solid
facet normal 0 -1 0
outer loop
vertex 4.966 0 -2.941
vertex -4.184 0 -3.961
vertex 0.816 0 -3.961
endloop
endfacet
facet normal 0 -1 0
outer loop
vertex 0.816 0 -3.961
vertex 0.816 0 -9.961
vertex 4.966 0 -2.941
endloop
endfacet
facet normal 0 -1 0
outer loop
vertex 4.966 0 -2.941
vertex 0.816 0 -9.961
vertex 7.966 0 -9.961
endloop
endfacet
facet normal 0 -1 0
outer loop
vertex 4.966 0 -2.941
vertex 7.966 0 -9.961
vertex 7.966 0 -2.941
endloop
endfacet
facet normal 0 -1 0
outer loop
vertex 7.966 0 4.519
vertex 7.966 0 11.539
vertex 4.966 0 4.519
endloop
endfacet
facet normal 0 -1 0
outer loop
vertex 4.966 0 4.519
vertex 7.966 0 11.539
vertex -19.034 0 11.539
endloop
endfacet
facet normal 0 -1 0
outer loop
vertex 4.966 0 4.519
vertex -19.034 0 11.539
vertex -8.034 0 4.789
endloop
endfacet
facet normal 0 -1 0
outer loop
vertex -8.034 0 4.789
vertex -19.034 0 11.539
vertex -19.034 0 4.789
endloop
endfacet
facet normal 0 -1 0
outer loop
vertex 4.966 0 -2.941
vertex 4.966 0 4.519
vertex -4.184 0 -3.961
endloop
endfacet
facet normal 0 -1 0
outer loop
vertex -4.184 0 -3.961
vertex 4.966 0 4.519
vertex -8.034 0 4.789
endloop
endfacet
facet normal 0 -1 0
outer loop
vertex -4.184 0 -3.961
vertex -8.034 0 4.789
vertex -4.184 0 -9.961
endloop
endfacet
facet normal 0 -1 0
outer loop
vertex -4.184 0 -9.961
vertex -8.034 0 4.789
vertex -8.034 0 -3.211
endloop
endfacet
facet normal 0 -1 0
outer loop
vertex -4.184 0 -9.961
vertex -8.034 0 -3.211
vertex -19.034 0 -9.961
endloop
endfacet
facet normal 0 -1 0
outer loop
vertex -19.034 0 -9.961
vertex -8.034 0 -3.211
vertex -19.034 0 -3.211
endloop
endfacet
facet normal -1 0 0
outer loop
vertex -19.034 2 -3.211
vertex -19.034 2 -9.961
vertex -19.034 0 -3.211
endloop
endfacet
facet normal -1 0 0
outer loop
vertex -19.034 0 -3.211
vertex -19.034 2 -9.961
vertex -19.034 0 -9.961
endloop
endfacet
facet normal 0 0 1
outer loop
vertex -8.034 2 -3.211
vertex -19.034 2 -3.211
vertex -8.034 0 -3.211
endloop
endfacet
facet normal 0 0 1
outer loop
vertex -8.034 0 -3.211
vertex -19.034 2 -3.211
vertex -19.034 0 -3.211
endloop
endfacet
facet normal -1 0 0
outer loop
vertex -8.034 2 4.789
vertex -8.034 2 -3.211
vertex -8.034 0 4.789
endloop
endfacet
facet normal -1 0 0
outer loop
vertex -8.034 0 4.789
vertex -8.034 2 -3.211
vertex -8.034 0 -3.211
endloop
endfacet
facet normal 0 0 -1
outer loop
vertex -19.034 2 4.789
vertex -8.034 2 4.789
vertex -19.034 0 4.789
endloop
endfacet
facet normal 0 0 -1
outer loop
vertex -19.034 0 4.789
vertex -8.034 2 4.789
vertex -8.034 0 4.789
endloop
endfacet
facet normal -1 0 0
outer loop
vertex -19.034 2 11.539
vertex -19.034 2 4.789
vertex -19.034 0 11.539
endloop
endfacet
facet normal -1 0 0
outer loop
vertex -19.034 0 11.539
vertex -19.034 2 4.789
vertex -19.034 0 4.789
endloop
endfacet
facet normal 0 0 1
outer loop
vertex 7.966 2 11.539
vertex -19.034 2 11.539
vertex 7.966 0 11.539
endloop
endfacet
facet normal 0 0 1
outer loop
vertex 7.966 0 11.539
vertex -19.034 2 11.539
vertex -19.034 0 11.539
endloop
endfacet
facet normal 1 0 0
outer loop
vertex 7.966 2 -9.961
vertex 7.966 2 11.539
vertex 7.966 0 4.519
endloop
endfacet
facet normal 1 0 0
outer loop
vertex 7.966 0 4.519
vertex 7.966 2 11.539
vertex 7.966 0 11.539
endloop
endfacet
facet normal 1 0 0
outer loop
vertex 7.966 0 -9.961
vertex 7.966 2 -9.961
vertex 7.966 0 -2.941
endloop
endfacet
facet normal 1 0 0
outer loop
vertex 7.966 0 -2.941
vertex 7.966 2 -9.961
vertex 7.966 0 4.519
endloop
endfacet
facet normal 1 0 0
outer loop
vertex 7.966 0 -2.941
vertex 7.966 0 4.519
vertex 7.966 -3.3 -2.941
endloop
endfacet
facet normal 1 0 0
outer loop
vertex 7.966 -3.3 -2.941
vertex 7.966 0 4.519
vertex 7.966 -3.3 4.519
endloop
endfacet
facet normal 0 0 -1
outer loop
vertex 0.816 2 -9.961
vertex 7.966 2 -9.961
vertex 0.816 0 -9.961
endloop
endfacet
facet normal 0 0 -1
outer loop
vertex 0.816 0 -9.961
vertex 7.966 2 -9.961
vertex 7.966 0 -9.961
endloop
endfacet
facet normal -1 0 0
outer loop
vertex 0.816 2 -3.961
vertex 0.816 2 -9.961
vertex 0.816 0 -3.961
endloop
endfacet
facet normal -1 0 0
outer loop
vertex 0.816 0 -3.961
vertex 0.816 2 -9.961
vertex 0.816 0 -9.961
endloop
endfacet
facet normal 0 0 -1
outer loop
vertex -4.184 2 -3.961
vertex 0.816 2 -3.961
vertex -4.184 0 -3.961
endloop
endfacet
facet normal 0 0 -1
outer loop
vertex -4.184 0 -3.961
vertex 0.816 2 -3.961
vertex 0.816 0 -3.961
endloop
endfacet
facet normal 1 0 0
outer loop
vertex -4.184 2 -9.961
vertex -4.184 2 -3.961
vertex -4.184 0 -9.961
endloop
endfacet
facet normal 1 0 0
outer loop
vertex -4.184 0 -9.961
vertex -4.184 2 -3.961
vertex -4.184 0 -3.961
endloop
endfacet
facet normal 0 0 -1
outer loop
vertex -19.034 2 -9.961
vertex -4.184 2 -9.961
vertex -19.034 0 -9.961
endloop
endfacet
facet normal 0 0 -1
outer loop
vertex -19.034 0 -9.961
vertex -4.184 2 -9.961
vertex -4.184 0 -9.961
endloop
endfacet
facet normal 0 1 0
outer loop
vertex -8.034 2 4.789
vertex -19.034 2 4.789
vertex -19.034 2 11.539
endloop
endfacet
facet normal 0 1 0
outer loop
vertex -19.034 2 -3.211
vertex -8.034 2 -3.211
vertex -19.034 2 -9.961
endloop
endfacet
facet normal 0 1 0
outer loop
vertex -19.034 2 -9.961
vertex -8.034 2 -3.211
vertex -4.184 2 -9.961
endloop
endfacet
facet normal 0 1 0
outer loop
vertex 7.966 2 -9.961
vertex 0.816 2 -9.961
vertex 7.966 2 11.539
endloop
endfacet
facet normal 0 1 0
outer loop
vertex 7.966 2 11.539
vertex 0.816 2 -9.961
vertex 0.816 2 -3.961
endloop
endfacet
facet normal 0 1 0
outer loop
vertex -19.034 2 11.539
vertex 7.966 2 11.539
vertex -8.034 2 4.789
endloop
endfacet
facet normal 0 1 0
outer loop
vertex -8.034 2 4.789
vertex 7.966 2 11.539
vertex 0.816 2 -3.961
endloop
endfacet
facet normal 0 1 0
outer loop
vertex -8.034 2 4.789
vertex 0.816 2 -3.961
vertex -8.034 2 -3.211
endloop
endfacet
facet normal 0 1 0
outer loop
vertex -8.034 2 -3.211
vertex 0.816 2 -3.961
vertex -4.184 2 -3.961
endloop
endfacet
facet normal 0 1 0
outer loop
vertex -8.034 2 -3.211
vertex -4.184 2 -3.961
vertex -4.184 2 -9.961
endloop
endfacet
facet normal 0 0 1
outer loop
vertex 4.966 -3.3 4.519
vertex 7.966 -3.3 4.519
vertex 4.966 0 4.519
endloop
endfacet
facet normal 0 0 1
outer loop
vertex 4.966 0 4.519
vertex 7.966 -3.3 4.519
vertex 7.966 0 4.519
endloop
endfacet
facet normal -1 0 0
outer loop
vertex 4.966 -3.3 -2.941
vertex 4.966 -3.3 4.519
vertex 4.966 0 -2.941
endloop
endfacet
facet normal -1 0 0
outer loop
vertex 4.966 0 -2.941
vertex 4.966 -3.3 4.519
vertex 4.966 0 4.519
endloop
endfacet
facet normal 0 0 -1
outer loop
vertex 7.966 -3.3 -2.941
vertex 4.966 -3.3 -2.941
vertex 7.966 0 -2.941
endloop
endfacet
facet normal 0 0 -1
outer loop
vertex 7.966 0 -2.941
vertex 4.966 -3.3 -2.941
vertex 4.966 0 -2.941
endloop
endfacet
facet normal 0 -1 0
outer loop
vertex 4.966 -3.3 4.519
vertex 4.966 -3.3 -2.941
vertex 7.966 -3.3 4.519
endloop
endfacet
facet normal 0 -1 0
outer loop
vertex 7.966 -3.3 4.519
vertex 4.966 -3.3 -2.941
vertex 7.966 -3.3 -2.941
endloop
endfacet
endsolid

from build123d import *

# Parameters (mm, degrees)
BOSS_EXTRUDE1_DEPTH = 2
SKETCH2_W           = 3
SKETCH2_H           = 7.46
BOSS_EXTRUDE2_DEPTH = 3.3


with BuildPart() as part:
    # Sketch1 → Boss-Extrude1 (new body)
    with BuildSketch(Plane(origin=(0, 0, 0), x_dir=(1, 0, 0), z_dir=(0, 1, 0))):
        Polygon((-19.033651007, 9.961336175), (-4.183651007, 9.961336175), (-4.183651007, 3.961336175), (0.816348993, 3.961336175), (0.816348993, 9.961336175), (7.966348993, 9.961336175), (7.966348993, -11.538663825), (-19.033651007, -11.538663825), (-19.033651007, -4.788663825), (-8.033651007, -4.788663825), (-8.033651007, 3.211336175), (-19.033651007, 3.211336175), align=None)
    extrude(amount=BOSS_EXTRUDE1_DEPTH)

    # Sketch2 → Boss-Extrude2 (add)
    with BuildSketch(Plane.XZ):
        with Locations((6.466348993, 0.788663825)):
            Rectangle(SKETCH2_W, SKETCH2_H)
    extrude(amount=BOSS_EXTRUDE2_DEPTH)


solid = part.part
